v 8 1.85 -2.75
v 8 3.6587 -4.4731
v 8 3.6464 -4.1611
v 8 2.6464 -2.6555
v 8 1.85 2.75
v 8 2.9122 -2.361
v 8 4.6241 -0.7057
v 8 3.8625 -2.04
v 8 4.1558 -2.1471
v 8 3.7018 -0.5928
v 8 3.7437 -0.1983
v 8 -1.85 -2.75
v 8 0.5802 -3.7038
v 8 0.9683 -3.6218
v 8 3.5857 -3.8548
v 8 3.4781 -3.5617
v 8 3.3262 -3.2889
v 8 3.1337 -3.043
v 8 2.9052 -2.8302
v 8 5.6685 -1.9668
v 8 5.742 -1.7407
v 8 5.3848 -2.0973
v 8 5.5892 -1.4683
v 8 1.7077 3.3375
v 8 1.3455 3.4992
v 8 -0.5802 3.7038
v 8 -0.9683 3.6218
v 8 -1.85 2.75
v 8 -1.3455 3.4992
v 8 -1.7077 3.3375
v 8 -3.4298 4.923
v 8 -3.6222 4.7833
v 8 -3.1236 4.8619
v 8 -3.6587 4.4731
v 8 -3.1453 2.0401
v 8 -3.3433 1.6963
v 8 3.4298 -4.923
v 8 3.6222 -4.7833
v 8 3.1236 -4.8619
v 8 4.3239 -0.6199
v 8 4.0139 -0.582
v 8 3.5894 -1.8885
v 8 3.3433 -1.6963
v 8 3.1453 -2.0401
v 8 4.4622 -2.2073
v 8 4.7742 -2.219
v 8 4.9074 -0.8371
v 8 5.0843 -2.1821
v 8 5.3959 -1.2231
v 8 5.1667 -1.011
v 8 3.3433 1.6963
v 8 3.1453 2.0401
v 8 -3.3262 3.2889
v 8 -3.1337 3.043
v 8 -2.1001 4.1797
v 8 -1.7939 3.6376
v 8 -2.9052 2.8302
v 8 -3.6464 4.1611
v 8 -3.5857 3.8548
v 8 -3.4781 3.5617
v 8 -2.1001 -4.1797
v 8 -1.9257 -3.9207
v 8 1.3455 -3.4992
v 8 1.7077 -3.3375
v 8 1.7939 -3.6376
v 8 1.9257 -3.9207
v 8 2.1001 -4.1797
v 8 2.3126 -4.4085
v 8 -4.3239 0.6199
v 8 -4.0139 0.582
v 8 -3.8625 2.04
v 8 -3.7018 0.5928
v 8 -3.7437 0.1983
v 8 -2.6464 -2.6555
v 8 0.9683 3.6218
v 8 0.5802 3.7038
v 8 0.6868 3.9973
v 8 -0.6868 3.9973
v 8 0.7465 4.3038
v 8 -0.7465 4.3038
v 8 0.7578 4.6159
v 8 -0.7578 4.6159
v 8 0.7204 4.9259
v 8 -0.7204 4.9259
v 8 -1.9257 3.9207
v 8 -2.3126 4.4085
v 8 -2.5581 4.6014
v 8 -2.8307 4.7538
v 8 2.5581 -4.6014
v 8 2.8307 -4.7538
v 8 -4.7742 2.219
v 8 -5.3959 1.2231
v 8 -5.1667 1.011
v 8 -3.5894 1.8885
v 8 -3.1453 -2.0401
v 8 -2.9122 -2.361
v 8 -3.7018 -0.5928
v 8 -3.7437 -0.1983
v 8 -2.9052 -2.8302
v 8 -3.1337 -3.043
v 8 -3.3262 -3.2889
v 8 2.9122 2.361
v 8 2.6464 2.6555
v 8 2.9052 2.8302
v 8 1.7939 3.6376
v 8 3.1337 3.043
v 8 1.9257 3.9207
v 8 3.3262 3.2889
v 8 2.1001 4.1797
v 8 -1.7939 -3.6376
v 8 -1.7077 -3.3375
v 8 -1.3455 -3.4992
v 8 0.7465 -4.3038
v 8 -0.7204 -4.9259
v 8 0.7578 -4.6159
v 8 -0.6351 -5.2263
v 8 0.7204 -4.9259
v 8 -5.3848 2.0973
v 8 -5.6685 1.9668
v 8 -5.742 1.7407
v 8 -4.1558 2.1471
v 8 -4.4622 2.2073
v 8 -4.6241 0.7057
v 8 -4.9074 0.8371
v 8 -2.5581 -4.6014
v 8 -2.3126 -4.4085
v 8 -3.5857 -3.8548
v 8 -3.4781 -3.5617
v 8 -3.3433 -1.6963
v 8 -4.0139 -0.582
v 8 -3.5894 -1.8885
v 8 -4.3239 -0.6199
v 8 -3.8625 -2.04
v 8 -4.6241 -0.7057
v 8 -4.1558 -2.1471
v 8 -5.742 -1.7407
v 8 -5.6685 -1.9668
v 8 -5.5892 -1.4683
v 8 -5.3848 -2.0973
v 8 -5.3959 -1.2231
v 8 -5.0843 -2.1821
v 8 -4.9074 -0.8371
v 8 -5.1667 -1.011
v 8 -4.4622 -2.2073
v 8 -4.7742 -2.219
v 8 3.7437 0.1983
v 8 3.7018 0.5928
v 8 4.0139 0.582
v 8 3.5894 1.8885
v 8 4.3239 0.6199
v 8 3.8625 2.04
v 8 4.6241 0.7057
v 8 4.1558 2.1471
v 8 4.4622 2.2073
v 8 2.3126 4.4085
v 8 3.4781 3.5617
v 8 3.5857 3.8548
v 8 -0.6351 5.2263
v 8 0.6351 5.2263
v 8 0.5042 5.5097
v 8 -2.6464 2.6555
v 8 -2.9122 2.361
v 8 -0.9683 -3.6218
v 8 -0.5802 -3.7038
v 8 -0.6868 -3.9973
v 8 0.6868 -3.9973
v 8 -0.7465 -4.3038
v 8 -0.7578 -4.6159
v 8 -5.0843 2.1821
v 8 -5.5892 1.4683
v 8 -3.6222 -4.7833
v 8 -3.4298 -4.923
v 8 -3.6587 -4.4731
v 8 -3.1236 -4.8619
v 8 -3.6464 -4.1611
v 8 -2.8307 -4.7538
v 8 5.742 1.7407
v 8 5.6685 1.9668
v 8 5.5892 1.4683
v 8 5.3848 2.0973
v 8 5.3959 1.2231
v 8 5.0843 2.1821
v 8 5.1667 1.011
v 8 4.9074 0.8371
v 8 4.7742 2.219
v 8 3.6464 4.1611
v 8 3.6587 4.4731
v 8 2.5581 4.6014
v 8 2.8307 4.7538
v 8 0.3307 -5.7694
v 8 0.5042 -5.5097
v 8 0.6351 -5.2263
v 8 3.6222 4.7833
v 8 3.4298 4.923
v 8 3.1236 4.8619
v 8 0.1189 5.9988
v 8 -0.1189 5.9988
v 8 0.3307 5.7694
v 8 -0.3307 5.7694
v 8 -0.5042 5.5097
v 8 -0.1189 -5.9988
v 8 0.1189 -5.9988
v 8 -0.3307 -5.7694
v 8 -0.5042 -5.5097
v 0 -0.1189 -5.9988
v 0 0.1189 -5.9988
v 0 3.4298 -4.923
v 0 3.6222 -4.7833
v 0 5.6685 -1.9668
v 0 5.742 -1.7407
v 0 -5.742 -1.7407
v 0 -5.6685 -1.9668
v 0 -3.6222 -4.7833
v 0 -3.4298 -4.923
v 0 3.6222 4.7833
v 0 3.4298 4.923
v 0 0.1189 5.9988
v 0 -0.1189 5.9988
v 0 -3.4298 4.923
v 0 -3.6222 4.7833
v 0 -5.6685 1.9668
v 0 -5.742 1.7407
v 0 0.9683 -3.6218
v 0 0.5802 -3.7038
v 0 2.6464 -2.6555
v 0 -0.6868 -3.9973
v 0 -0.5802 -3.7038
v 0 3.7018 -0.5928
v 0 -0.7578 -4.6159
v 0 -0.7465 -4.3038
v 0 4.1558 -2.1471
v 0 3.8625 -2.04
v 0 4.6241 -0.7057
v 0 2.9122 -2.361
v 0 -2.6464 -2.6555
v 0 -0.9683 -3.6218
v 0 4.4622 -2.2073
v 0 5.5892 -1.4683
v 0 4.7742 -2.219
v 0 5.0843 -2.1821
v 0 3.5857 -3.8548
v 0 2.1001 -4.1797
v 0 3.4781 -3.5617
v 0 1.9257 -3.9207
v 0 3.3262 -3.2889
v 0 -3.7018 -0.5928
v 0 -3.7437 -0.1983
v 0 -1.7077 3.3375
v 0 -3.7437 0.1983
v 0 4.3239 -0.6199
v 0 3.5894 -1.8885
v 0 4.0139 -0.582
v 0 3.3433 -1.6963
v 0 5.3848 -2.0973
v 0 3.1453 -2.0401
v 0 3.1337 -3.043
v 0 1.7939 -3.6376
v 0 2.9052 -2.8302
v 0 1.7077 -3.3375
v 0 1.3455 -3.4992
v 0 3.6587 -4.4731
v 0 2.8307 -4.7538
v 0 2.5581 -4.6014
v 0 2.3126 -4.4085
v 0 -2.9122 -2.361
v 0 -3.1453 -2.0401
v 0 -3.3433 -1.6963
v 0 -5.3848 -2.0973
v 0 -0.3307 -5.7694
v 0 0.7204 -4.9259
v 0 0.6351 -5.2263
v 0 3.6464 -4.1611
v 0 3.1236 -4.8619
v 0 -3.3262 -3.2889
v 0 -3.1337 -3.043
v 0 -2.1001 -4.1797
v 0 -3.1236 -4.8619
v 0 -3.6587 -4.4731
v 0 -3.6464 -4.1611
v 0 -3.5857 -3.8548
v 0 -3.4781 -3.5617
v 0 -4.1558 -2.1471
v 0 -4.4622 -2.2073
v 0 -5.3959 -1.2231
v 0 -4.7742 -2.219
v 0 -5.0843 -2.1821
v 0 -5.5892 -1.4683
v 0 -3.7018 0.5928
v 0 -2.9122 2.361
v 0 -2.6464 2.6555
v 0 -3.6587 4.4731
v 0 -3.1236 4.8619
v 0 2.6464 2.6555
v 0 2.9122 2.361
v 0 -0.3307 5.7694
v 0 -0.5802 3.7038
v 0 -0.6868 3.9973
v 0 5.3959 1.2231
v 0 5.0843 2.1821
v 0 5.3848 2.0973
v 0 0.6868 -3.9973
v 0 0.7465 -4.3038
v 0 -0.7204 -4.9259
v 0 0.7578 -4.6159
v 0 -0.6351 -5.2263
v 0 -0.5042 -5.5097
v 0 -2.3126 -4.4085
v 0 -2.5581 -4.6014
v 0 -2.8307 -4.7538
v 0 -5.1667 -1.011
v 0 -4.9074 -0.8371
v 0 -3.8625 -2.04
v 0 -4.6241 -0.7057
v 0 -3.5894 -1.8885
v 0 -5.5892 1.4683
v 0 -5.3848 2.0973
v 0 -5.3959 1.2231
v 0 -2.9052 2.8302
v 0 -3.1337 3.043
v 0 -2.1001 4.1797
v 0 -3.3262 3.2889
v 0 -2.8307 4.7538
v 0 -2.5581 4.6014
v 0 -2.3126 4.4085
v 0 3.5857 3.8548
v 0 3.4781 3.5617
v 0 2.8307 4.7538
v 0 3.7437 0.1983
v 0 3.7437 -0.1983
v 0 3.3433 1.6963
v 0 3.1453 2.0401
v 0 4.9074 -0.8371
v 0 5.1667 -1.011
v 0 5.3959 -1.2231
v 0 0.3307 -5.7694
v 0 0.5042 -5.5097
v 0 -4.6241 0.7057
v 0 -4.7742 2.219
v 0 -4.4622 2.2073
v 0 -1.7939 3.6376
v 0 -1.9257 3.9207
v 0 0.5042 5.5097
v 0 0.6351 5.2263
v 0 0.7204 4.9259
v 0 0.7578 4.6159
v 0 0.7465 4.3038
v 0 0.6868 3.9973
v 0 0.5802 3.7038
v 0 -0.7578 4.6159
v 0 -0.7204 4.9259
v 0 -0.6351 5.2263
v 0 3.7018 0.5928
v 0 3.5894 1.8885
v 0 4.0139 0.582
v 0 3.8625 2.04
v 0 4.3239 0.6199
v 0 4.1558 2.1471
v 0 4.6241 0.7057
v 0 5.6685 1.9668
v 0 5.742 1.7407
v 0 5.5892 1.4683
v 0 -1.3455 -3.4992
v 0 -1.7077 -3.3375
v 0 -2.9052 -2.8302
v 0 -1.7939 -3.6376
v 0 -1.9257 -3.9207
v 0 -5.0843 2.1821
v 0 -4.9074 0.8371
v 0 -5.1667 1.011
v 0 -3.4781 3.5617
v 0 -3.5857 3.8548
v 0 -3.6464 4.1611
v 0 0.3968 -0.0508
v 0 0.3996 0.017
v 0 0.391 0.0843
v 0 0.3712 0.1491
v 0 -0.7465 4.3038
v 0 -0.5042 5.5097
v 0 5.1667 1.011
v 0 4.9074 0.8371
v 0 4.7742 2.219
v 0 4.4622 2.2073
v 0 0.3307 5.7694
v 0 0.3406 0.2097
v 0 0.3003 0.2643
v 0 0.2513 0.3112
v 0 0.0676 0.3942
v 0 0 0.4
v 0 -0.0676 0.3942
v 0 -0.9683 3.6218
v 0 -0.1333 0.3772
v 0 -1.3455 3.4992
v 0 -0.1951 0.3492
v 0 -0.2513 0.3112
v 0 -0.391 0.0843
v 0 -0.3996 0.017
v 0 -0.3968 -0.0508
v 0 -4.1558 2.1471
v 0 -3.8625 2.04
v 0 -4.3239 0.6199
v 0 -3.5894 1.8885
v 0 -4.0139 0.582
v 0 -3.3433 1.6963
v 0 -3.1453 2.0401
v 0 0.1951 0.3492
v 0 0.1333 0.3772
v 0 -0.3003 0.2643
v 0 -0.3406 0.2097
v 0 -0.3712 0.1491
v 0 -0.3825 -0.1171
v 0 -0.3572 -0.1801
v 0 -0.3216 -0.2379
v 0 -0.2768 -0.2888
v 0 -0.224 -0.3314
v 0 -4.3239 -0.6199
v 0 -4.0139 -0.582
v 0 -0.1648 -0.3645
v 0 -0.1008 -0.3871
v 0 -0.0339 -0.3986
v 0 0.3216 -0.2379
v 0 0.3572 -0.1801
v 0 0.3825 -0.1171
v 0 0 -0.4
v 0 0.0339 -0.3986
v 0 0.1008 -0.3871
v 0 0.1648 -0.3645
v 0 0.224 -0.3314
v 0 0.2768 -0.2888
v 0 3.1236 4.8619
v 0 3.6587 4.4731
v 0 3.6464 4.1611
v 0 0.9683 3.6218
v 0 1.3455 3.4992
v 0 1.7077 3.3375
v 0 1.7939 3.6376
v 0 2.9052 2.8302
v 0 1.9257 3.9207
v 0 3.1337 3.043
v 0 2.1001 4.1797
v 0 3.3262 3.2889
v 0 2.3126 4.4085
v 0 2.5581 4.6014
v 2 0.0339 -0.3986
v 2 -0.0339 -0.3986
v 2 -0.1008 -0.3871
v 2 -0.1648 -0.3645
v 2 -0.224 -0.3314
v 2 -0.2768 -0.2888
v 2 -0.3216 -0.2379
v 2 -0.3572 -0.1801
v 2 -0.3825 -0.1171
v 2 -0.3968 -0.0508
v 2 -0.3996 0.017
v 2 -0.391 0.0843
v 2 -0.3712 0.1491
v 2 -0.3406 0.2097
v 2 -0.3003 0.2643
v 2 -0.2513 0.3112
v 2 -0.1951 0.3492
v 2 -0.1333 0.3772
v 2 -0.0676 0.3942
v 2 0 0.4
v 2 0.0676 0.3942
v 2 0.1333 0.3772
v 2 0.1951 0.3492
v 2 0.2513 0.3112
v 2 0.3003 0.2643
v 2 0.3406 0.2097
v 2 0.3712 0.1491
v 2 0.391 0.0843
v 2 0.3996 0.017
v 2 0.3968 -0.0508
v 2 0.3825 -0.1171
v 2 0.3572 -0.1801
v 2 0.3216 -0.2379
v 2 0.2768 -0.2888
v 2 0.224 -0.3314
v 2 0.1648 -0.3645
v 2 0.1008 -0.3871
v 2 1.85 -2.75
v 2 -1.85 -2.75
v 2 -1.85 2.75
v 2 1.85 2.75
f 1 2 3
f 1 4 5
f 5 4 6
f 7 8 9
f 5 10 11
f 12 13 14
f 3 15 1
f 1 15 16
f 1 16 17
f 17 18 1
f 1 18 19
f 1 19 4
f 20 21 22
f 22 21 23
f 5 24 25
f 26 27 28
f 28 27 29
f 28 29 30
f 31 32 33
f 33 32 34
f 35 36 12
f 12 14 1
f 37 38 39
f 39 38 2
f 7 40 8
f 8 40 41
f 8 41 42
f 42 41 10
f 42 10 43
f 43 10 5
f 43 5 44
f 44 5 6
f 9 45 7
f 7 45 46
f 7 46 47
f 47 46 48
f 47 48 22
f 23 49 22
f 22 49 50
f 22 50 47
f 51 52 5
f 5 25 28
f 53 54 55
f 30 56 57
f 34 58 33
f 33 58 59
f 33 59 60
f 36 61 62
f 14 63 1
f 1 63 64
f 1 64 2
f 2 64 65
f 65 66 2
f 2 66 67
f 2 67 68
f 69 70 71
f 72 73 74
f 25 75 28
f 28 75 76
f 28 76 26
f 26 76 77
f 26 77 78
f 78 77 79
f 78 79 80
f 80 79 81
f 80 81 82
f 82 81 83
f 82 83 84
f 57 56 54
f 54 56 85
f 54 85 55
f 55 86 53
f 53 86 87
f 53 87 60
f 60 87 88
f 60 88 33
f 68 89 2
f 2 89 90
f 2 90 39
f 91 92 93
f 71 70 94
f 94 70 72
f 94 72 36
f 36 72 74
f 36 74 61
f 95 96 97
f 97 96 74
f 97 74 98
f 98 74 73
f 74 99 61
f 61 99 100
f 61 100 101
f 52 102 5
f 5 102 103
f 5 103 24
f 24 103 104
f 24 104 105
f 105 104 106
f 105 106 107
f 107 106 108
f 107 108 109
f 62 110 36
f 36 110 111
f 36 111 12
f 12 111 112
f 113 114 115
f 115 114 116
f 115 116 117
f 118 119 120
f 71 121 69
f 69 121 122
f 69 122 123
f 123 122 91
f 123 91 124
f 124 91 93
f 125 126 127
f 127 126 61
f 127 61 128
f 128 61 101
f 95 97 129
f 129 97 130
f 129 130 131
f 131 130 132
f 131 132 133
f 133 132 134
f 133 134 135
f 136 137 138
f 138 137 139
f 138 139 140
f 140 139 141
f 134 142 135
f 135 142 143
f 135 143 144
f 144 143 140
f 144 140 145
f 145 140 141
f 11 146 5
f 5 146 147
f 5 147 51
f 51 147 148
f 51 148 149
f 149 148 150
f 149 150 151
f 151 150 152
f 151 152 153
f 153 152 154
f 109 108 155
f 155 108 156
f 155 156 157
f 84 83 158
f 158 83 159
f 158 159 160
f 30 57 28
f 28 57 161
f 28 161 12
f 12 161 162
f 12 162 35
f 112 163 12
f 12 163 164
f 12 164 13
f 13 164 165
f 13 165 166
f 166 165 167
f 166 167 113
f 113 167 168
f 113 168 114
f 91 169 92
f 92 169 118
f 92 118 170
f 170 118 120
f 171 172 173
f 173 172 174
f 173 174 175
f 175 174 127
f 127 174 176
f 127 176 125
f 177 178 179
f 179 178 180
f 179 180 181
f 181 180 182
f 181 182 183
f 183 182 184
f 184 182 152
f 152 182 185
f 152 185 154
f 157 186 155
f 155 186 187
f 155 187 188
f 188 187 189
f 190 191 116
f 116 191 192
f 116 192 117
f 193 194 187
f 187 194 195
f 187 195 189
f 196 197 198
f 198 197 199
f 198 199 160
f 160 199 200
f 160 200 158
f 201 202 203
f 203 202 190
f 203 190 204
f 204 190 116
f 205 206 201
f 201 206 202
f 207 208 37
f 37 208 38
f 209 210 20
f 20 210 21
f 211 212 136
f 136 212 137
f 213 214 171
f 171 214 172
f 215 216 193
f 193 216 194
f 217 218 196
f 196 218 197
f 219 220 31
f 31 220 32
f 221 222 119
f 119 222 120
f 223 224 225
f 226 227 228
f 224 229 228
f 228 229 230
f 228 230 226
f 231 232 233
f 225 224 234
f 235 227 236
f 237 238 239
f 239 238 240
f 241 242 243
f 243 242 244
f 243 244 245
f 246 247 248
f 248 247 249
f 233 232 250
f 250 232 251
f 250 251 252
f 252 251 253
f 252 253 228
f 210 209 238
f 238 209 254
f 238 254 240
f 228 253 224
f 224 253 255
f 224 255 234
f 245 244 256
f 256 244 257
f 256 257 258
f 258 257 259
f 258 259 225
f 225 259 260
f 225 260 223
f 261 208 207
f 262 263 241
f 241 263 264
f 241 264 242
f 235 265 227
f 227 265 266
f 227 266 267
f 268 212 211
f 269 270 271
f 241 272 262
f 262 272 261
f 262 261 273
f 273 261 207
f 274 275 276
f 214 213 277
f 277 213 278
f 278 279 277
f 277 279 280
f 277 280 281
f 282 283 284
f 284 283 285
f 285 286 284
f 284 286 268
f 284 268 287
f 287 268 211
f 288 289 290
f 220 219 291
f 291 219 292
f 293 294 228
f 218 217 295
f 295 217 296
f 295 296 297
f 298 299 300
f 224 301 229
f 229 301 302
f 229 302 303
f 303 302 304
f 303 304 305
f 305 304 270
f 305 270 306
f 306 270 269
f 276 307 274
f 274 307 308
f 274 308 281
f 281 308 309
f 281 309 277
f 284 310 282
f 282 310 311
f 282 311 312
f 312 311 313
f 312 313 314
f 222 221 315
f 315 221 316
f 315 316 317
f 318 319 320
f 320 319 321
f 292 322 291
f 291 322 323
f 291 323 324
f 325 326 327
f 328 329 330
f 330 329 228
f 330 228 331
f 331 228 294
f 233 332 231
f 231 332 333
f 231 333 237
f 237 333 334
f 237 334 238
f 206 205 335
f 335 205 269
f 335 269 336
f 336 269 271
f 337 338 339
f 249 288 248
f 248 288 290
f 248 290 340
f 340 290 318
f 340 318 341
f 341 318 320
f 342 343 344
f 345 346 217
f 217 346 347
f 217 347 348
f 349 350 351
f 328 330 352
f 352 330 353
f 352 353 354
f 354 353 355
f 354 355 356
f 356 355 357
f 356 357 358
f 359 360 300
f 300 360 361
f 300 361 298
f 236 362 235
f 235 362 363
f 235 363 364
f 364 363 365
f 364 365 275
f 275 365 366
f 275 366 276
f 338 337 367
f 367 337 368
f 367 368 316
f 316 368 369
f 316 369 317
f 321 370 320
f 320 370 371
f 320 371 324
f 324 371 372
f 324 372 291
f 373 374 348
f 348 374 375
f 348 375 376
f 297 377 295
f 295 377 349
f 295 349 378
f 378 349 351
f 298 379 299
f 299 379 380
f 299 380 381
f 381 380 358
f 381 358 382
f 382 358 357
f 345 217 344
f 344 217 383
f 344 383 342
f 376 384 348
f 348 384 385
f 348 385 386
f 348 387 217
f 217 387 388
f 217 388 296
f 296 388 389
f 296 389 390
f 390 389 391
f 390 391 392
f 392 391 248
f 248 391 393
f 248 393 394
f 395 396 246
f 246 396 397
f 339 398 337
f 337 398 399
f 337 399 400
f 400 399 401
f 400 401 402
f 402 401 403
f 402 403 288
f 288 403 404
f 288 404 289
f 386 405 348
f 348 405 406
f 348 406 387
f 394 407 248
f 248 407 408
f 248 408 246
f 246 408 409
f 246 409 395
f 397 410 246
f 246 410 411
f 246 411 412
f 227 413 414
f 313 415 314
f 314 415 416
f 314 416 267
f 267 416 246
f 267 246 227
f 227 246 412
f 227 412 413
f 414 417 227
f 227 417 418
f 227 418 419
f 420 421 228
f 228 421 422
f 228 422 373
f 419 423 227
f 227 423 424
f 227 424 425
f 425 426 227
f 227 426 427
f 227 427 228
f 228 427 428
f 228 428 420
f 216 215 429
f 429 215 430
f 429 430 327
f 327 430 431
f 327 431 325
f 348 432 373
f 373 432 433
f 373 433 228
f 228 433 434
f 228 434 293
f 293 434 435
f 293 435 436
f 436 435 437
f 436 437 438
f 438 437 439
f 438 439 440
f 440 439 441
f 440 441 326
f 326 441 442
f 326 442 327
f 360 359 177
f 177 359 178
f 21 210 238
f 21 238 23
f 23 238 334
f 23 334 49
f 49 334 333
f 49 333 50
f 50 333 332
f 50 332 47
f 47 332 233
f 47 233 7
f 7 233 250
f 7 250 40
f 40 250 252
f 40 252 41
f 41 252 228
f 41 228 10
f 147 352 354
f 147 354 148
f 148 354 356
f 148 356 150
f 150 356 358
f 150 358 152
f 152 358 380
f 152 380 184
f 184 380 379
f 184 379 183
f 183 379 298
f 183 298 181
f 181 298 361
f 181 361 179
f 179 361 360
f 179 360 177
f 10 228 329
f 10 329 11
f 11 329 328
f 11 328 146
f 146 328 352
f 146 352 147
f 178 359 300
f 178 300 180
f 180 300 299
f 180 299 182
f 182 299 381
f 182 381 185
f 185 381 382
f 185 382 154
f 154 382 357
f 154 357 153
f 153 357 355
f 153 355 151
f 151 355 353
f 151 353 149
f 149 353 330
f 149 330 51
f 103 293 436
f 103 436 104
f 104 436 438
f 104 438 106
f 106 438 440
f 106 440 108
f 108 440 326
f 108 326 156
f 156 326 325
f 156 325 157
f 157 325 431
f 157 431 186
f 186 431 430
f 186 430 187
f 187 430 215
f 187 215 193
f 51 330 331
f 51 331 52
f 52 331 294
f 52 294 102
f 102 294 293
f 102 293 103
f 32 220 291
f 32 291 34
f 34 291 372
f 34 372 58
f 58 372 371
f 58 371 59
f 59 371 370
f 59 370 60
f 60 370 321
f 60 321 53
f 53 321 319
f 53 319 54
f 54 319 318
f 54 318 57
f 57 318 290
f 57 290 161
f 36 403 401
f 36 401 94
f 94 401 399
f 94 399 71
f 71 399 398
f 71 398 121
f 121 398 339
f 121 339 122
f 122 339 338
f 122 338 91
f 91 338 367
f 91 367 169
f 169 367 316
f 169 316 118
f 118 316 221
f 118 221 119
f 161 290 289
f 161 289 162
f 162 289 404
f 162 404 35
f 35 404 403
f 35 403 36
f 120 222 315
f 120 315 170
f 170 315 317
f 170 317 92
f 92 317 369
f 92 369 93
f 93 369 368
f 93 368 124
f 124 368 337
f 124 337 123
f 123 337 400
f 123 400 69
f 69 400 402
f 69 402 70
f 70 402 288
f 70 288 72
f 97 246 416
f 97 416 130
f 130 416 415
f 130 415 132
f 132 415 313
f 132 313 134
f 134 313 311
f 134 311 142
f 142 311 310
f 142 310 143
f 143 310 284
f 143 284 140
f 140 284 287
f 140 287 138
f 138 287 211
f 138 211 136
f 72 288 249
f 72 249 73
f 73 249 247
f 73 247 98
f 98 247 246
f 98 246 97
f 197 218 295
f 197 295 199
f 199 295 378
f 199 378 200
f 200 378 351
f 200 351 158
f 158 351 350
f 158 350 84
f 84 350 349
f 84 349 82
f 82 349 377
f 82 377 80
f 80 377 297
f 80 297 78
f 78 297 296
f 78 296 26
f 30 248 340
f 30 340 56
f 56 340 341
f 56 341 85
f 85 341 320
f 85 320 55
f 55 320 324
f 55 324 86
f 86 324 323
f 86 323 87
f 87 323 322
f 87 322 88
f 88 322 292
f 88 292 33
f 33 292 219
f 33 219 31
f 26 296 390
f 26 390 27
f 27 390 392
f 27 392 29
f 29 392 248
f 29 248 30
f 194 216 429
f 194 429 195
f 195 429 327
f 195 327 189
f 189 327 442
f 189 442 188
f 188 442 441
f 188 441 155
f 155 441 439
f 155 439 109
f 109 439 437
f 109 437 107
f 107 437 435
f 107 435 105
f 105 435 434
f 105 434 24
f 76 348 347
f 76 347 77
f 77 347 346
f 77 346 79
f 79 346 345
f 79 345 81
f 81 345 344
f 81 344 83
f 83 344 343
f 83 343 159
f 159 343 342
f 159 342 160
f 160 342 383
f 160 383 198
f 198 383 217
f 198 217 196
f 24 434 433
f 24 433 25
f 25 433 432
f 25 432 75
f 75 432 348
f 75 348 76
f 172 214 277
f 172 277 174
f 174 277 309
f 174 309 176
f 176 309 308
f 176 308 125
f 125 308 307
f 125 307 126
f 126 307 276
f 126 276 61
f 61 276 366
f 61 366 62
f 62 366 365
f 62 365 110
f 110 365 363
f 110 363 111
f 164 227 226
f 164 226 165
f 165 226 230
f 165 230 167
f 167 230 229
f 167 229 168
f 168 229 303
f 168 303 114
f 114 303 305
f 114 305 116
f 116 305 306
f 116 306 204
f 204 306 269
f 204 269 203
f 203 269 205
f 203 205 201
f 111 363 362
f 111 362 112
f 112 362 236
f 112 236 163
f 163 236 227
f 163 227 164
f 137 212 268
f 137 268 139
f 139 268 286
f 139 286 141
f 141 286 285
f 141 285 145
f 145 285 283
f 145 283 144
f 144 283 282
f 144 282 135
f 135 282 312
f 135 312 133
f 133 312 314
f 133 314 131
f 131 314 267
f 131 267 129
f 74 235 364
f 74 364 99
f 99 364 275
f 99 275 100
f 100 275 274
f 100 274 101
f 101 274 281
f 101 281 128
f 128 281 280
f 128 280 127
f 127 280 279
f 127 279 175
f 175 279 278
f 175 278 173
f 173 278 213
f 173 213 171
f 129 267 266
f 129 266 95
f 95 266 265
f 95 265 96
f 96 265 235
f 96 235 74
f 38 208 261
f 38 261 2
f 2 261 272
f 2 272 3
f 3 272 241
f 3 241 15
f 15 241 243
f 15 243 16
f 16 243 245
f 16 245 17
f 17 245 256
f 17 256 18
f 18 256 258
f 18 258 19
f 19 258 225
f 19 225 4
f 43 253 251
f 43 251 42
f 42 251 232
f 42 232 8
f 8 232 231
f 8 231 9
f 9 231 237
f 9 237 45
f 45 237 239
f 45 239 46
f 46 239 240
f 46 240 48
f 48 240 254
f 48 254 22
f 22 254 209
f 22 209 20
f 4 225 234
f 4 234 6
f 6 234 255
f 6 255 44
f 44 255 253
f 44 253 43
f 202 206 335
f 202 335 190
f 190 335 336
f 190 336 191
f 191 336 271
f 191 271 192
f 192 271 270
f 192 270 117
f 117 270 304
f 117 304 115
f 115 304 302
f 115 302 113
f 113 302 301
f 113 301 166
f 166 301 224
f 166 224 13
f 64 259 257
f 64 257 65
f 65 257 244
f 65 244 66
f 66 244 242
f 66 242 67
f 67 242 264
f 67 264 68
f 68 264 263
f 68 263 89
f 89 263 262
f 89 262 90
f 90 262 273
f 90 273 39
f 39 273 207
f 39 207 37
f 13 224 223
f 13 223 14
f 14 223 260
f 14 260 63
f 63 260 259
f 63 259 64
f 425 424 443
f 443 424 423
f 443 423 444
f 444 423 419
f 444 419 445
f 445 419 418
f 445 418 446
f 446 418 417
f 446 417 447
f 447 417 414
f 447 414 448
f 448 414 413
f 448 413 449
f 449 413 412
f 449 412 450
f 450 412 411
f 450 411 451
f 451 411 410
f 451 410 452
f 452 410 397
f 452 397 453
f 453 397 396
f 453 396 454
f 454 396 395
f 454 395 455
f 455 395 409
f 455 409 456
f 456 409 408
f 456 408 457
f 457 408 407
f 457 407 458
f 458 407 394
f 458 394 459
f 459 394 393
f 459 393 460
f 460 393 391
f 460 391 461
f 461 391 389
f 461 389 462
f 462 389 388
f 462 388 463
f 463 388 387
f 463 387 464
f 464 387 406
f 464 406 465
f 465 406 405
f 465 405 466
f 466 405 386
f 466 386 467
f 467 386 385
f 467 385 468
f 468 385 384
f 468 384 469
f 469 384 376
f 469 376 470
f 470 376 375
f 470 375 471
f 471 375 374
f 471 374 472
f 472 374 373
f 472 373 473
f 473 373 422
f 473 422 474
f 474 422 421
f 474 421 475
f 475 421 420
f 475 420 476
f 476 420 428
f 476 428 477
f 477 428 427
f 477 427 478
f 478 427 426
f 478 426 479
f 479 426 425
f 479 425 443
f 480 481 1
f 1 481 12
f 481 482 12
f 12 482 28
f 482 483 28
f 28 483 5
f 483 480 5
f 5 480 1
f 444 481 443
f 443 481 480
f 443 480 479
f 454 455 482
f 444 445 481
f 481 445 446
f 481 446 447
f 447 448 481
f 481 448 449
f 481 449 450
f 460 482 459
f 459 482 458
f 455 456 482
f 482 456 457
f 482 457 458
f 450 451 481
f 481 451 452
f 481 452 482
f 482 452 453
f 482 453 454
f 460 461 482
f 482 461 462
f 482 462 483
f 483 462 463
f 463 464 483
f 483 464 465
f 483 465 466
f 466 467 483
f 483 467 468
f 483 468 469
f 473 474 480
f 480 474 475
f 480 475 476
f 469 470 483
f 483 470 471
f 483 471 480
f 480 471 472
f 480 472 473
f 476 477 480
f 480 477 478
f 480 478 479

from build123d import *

# Parameters (mm, degrees)
BASPROSKE_W           = 8
BASPROSKE_H           = 6
TOOTHCUT_DEPTH        = 12.66190379
TEETHCUTS_COUNT       = 10
TEETHCUTS_ANGLE       = 324
BORSKE_R              = 0.4
BORE_DEPTH            = 50.0000508
CROQUIS1_W            = 5.5
CROQUIS1_H            = 3.7
CORTAR_EXTRUIR1_DEPTH = 6


with BuildPart() as part:
    # BasProSke → Base-Revolve (revolve)
    with BuildSketch(Plane(origin=(0, 0, 0), x_dir=(1, 0, 0), z_dir=(0, 1, 0)), mode=Mode.PRIVATE) as base_revolve_sk:
        with Locations((4, 3)):
            Rectangle(BASPROSKE_W, BASPROSKE_H)
    revolve(base_revolve_sk.sketch.rotate(Axis((-10, 0, 0), (1, 0, 0)), 180), axis=Axis((-10, 0, 0), (1, 0, 0)))

    # TooCutSke → ToothCut (cut, through all)
    with BuildSketch(Plane(origin=(0, 0, 0), x_dir=(0, 0, -1), z_dir=(1, 0, 0))):
        with BuildLine():
            ThreePointArc((0.59278292, 3.701838653), (0, 3.749), (-0.59278292, 3.701838653))
            ThreePointArc((-0.59278292, 3.701838653), (-0.846593509, 4.924114224), (-1.775771316, 5.757784417))
            ThreePointArc((-1.775771316, 5.757784417), (0, 6.0254), (1.775771316, 5.757784417))
            ThreePointArc((1.775771316, 5.757784417), (0.846593509, 4.924114224), (0.59278292, 3.701838653))
        make_face()
    toothcut = extrude(amount=TOOTHCUT_DEPTH, mode=Mode.SUBTRACT)

    # TeethCuts: ToothCut ×10 about axis
    teethcuts_axis = Axis((-10, 0, 0), (1, 0, 0))
    for i in range(1, TEETHCUTS_COUNT):
        add(toothcut.rotate(teethcuts_axis, i * TEETHCUTS_ANGLE / (TEETHCUTS_COUNT - 1)), mode=Mode.SUBTRACT)

    # BorSke → Bore (cut, symmetric)
    with BuildSketch(Plane(origin=(0, 0, 0), x_dir=(0, 0, -1), z_dir=(1, 0, 0))):
        with Locations(Location((0, 0, 0), (0, 0, 180))):
            Circle(BORSKE_R)
    extrude(amount=BORE_DEPTH, both=True, mode=Mode.SUBTRACT)

    # Croquis1 → Cortar-Extruir1 (cut)
    with BuildSketch(Plane(origin=(8, 0, 0), x_dir=(0, 0, -1), z_dir=(1, 0, 0))):
        Rectangle(CROQUIS1_W, CROQUIS1_H)
    extrude(amount=-CORTAR_EXTRUIR1_DEPTH, mode=Mode.SUBTRACT)


solid = part.part
